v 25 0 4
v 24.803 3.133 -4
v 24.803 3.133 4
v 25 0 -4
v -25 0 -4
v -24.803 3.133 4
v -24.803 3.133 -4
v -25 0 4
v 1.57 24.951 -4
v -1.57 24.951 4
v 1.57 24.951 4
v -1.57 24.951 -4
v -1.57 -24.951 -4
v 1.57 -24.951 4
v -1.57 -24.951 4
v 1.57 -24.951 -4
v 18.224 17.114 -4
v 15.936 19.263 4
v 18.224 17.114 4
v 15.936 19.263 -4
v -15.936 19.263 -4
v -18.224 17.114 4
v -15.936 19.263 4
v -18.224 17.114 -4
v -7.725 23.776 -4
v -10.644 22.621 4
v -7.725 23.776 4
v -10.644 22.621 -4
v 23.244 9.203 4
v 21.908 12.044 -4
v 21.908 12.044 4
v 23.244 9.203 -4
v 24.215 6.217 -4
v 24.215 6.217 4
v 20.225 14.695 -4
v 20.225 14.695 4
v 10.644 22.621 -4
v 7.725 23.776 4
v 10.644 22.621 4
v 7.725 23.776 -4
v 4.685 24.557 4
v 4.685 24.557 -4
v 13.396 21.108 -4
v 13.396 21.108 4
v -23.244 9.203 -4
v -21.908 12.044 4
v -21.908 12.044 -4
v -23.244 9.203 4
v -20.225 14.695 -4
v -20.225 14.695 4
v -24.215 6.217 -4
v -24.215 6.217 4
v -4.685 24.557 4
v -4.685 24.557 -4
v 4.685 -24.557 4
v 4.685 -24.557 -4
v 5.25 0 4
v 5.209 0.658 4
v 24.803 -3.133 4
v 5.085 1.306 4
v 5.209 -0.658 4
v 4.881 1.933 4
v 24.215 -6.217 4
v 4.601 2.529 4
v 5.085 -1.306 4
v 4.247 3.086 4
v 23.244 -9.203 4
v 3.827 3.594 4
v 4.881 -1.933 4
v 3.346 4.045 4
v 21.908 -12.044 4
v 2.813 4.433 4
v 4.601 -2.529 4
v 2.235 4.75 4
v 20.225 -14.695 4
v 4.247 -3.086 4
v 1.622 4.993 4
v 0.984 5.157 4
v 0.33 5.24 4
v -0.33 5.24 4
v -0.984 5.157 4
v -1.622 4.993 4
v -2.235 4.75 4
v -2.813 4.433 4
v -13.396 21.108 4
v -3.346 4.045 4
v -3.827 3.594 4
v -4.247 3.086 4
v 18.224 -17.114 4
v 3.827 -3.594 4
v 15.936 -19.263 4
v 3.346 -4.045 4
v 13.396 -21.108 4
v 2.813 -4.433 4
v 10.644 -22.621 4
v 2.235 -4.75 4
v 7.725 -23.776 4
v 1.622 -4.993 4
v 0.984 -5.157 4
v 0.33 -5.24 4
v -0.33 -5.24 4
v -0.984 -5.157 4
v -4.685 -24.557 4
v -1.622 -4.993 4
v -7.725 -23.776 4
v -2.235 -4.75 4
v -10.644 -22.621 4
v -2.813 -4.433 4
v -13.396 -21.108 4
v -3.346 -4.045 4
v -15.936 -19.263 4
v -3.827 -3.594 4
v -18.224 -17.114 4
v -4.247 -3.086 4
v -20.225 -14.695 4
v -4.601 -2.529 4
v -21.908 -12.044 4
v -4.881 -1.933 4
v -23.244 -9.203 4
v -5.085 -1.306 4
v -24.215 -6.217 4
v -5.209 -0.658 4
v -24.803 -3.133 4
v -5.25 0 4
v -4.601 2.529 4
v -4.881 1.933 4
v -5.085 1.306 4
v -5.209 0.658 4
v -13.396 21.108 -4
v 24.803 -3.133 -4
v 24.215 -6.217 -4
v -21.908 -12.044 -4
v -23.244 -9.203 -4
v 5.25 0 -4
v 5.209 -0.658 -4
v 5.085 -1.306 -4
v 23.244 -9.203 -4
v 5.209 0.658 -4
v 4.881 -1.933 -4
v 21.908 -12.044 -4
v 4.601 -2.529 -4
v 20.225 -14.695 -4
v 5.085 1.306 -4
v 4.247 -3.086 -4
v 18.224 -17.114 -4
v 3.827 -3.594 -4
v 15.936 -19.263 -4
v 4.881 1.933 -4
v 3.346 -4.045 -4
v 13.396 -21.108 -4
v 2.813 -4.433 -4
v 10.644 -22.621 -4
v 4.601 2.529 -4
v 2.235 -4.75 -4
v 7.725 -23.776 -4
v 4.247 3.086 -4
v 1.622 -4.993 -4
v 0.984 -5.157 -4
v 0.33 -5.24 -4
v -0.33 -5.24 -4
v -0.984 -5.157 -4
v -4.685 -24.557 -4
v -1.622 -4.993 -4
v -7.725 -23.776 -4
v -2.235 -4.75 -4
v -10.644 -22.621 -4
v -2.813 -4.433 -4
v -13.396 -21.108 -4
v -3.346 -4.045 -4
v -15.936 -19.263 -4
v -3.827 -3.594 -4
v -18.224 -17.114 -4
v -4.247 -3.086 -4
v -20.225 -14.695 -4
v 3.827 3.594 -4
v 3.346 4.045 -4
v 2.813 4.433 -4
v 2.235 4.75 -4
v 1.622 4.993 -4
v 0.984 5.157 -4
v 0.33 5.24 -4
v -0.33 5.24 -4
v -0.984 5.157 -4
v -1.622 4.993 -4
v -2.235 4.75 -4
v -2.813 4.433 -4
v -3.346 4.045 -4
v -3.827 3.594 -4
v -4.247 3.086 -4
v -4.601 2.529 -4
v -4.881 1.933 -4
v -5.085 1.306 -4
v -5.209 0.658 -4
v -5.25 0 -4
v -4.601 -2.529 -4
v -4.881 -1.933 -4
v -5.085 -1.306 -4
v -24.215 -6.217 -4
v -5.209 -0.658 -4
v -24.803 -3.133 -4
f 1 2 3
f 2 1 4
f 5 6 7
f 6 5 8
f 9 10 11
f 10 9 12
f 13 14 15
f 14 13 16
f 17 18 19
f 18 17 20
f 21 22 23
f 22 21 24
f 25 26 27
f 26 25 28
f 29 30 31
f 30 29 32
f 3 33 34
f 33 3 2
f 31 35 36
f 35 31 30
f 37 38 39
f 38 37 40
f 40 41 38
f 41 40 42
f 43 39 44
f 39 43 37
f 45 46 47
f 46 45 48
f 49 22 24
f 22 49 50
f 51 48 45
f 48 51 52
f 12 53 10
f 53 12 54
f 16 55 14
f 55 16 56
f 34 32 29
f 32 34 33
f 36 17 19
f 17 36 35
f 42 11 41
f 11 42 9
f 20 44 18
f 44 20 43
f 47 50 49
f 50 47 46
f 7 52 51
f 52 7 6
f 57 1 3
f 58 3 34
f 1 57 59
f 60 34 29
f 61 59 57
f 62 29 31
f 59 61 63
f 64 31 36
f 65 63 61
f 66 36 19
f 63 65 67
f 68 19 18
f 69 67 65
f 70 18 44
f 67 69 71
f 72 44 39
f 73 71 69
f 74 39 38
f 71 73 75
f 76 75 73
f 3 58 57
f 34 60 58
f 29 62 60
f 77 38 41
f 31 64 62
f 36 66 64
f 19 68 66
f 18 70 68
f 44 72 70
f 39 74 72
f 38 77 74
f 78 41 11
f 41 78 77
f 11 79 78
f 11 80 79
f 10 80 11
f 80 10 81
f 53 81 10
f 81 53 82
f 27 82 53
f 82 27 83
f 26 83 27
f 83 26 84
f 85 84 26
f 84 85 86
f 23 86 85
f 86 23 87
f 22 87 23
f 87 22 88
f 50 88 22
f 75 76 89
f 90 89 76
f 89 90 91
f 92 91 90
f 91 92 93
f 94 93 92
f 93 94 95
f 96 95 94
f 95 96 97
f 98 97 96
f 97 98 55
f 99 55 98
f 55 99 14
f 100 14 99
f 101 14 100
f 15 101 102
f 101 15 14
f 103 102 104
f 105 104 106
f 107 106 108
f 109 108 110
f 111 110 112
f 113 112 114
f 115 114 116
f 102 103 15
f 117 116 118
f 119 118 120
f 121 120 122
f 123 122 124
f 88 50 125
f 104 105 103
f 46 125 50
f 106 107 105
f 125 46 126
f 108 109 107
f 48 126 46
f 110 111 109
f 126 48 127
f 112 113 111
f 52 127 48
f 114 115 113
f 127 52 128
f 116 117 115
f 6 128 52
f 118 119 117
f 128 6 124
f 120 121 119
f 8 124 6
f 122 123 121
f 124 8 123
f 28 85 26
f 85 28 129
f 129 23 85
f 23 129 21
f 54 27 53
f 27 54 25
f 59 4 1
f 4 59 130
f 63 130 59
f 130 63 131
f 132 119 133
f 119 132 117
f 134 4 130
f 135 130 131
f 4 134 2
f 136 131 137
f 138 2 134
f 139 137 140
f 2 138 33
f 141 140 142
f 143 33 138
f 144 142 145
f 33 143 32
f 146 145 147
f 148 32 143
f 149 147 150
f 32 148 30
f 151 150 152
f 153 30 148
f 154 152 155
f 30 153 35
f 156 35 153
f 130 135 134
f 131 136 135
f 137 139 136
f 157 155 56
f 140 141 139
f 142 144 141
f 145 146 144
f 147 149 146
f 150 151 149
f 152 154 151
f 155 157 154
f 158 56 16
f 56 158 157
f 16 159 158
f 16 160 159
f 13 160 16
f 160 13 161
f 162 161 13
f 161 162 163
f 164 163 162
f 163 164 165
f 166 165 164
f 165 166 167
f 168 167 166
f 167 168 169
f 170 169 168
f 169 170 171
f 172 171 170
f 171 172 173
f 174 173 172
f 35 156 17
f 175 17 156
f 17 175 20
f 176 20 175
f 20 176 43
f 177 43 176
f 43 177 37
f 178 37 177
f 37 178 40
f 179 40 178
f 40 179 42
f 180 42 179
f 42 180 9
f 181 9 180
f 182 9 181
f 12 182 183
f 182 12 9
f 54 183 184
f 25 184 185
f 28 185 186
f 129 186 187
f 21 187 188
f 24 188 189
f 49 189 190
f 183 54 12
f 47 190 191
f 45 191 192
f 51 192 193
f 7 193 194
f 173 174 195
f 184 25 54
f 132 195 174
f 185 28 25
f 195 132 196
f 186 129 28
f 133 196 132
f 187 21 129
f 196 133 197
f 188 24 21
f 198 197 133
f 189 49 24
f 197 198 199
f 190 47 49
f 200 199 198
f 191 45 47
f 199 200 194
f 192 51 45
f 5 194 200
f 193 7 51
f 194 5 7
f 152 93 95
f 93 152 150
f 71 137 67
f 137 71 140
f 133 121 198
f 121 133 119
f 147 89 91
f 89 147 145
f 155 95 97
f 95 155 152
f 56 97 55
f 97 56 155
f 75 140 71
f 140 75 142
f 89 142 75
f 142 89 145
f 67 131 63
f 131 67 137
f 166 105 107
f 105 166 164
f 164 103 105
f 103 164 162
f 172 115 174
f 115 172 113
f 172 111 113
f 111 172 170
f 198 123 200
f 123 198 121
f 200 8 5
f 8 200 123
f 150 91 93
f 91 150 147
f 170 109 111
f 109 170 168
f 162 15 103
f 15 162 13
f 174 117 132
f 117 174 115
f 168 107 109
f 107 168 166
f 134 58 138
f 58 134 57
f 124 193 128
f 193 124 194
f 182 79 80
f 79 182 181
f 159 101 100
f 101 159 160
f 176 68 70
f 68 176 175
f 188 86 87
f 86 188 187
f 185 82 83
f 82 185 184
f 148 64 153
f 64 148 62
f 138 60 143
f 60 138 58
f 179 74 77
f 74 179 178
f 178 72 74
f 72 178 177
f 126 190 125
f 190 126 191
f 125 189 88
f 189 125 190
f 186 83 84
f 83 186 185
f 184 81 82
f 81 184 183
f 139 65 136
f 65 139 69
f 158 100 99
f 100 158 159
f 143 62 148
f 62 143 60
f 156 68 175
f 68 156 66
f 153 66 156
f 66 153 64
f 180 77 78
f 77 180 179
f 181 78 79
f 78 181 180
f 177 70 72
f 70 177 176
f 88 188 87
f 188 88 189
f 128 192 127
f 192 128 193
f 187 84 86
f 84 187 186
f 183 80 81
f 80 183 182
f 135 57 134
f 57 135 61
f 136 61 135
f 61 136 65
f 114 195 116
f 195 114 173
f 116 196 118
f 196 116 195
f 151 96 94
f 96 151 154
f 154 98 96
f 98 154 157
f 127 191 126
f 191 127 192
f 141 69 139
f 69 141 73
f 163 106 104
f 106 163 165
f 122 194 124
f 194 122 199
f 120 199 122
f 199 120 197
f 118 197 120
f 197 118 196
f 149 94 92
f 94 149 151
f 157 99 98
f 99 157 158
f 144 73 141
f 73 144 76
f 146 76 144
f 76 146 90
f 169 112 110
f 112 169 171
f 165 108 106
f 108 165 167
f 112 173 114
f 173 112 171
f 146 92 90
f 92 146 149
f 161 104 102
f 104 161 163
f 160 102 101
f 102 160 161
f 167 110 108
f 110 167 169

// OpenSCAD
$fn = 50;


difference() {
	union() {
		translate(v = [0, 0, -4.0000000000]) {
			cylinder(h = 8, r = 25.0000000000);
		}
	}
	union() {
		translate(v = [0, 0, -100.0000000000]) {
			cylinder(h = 200, r = 5.2500000000);
		}
	}
}
